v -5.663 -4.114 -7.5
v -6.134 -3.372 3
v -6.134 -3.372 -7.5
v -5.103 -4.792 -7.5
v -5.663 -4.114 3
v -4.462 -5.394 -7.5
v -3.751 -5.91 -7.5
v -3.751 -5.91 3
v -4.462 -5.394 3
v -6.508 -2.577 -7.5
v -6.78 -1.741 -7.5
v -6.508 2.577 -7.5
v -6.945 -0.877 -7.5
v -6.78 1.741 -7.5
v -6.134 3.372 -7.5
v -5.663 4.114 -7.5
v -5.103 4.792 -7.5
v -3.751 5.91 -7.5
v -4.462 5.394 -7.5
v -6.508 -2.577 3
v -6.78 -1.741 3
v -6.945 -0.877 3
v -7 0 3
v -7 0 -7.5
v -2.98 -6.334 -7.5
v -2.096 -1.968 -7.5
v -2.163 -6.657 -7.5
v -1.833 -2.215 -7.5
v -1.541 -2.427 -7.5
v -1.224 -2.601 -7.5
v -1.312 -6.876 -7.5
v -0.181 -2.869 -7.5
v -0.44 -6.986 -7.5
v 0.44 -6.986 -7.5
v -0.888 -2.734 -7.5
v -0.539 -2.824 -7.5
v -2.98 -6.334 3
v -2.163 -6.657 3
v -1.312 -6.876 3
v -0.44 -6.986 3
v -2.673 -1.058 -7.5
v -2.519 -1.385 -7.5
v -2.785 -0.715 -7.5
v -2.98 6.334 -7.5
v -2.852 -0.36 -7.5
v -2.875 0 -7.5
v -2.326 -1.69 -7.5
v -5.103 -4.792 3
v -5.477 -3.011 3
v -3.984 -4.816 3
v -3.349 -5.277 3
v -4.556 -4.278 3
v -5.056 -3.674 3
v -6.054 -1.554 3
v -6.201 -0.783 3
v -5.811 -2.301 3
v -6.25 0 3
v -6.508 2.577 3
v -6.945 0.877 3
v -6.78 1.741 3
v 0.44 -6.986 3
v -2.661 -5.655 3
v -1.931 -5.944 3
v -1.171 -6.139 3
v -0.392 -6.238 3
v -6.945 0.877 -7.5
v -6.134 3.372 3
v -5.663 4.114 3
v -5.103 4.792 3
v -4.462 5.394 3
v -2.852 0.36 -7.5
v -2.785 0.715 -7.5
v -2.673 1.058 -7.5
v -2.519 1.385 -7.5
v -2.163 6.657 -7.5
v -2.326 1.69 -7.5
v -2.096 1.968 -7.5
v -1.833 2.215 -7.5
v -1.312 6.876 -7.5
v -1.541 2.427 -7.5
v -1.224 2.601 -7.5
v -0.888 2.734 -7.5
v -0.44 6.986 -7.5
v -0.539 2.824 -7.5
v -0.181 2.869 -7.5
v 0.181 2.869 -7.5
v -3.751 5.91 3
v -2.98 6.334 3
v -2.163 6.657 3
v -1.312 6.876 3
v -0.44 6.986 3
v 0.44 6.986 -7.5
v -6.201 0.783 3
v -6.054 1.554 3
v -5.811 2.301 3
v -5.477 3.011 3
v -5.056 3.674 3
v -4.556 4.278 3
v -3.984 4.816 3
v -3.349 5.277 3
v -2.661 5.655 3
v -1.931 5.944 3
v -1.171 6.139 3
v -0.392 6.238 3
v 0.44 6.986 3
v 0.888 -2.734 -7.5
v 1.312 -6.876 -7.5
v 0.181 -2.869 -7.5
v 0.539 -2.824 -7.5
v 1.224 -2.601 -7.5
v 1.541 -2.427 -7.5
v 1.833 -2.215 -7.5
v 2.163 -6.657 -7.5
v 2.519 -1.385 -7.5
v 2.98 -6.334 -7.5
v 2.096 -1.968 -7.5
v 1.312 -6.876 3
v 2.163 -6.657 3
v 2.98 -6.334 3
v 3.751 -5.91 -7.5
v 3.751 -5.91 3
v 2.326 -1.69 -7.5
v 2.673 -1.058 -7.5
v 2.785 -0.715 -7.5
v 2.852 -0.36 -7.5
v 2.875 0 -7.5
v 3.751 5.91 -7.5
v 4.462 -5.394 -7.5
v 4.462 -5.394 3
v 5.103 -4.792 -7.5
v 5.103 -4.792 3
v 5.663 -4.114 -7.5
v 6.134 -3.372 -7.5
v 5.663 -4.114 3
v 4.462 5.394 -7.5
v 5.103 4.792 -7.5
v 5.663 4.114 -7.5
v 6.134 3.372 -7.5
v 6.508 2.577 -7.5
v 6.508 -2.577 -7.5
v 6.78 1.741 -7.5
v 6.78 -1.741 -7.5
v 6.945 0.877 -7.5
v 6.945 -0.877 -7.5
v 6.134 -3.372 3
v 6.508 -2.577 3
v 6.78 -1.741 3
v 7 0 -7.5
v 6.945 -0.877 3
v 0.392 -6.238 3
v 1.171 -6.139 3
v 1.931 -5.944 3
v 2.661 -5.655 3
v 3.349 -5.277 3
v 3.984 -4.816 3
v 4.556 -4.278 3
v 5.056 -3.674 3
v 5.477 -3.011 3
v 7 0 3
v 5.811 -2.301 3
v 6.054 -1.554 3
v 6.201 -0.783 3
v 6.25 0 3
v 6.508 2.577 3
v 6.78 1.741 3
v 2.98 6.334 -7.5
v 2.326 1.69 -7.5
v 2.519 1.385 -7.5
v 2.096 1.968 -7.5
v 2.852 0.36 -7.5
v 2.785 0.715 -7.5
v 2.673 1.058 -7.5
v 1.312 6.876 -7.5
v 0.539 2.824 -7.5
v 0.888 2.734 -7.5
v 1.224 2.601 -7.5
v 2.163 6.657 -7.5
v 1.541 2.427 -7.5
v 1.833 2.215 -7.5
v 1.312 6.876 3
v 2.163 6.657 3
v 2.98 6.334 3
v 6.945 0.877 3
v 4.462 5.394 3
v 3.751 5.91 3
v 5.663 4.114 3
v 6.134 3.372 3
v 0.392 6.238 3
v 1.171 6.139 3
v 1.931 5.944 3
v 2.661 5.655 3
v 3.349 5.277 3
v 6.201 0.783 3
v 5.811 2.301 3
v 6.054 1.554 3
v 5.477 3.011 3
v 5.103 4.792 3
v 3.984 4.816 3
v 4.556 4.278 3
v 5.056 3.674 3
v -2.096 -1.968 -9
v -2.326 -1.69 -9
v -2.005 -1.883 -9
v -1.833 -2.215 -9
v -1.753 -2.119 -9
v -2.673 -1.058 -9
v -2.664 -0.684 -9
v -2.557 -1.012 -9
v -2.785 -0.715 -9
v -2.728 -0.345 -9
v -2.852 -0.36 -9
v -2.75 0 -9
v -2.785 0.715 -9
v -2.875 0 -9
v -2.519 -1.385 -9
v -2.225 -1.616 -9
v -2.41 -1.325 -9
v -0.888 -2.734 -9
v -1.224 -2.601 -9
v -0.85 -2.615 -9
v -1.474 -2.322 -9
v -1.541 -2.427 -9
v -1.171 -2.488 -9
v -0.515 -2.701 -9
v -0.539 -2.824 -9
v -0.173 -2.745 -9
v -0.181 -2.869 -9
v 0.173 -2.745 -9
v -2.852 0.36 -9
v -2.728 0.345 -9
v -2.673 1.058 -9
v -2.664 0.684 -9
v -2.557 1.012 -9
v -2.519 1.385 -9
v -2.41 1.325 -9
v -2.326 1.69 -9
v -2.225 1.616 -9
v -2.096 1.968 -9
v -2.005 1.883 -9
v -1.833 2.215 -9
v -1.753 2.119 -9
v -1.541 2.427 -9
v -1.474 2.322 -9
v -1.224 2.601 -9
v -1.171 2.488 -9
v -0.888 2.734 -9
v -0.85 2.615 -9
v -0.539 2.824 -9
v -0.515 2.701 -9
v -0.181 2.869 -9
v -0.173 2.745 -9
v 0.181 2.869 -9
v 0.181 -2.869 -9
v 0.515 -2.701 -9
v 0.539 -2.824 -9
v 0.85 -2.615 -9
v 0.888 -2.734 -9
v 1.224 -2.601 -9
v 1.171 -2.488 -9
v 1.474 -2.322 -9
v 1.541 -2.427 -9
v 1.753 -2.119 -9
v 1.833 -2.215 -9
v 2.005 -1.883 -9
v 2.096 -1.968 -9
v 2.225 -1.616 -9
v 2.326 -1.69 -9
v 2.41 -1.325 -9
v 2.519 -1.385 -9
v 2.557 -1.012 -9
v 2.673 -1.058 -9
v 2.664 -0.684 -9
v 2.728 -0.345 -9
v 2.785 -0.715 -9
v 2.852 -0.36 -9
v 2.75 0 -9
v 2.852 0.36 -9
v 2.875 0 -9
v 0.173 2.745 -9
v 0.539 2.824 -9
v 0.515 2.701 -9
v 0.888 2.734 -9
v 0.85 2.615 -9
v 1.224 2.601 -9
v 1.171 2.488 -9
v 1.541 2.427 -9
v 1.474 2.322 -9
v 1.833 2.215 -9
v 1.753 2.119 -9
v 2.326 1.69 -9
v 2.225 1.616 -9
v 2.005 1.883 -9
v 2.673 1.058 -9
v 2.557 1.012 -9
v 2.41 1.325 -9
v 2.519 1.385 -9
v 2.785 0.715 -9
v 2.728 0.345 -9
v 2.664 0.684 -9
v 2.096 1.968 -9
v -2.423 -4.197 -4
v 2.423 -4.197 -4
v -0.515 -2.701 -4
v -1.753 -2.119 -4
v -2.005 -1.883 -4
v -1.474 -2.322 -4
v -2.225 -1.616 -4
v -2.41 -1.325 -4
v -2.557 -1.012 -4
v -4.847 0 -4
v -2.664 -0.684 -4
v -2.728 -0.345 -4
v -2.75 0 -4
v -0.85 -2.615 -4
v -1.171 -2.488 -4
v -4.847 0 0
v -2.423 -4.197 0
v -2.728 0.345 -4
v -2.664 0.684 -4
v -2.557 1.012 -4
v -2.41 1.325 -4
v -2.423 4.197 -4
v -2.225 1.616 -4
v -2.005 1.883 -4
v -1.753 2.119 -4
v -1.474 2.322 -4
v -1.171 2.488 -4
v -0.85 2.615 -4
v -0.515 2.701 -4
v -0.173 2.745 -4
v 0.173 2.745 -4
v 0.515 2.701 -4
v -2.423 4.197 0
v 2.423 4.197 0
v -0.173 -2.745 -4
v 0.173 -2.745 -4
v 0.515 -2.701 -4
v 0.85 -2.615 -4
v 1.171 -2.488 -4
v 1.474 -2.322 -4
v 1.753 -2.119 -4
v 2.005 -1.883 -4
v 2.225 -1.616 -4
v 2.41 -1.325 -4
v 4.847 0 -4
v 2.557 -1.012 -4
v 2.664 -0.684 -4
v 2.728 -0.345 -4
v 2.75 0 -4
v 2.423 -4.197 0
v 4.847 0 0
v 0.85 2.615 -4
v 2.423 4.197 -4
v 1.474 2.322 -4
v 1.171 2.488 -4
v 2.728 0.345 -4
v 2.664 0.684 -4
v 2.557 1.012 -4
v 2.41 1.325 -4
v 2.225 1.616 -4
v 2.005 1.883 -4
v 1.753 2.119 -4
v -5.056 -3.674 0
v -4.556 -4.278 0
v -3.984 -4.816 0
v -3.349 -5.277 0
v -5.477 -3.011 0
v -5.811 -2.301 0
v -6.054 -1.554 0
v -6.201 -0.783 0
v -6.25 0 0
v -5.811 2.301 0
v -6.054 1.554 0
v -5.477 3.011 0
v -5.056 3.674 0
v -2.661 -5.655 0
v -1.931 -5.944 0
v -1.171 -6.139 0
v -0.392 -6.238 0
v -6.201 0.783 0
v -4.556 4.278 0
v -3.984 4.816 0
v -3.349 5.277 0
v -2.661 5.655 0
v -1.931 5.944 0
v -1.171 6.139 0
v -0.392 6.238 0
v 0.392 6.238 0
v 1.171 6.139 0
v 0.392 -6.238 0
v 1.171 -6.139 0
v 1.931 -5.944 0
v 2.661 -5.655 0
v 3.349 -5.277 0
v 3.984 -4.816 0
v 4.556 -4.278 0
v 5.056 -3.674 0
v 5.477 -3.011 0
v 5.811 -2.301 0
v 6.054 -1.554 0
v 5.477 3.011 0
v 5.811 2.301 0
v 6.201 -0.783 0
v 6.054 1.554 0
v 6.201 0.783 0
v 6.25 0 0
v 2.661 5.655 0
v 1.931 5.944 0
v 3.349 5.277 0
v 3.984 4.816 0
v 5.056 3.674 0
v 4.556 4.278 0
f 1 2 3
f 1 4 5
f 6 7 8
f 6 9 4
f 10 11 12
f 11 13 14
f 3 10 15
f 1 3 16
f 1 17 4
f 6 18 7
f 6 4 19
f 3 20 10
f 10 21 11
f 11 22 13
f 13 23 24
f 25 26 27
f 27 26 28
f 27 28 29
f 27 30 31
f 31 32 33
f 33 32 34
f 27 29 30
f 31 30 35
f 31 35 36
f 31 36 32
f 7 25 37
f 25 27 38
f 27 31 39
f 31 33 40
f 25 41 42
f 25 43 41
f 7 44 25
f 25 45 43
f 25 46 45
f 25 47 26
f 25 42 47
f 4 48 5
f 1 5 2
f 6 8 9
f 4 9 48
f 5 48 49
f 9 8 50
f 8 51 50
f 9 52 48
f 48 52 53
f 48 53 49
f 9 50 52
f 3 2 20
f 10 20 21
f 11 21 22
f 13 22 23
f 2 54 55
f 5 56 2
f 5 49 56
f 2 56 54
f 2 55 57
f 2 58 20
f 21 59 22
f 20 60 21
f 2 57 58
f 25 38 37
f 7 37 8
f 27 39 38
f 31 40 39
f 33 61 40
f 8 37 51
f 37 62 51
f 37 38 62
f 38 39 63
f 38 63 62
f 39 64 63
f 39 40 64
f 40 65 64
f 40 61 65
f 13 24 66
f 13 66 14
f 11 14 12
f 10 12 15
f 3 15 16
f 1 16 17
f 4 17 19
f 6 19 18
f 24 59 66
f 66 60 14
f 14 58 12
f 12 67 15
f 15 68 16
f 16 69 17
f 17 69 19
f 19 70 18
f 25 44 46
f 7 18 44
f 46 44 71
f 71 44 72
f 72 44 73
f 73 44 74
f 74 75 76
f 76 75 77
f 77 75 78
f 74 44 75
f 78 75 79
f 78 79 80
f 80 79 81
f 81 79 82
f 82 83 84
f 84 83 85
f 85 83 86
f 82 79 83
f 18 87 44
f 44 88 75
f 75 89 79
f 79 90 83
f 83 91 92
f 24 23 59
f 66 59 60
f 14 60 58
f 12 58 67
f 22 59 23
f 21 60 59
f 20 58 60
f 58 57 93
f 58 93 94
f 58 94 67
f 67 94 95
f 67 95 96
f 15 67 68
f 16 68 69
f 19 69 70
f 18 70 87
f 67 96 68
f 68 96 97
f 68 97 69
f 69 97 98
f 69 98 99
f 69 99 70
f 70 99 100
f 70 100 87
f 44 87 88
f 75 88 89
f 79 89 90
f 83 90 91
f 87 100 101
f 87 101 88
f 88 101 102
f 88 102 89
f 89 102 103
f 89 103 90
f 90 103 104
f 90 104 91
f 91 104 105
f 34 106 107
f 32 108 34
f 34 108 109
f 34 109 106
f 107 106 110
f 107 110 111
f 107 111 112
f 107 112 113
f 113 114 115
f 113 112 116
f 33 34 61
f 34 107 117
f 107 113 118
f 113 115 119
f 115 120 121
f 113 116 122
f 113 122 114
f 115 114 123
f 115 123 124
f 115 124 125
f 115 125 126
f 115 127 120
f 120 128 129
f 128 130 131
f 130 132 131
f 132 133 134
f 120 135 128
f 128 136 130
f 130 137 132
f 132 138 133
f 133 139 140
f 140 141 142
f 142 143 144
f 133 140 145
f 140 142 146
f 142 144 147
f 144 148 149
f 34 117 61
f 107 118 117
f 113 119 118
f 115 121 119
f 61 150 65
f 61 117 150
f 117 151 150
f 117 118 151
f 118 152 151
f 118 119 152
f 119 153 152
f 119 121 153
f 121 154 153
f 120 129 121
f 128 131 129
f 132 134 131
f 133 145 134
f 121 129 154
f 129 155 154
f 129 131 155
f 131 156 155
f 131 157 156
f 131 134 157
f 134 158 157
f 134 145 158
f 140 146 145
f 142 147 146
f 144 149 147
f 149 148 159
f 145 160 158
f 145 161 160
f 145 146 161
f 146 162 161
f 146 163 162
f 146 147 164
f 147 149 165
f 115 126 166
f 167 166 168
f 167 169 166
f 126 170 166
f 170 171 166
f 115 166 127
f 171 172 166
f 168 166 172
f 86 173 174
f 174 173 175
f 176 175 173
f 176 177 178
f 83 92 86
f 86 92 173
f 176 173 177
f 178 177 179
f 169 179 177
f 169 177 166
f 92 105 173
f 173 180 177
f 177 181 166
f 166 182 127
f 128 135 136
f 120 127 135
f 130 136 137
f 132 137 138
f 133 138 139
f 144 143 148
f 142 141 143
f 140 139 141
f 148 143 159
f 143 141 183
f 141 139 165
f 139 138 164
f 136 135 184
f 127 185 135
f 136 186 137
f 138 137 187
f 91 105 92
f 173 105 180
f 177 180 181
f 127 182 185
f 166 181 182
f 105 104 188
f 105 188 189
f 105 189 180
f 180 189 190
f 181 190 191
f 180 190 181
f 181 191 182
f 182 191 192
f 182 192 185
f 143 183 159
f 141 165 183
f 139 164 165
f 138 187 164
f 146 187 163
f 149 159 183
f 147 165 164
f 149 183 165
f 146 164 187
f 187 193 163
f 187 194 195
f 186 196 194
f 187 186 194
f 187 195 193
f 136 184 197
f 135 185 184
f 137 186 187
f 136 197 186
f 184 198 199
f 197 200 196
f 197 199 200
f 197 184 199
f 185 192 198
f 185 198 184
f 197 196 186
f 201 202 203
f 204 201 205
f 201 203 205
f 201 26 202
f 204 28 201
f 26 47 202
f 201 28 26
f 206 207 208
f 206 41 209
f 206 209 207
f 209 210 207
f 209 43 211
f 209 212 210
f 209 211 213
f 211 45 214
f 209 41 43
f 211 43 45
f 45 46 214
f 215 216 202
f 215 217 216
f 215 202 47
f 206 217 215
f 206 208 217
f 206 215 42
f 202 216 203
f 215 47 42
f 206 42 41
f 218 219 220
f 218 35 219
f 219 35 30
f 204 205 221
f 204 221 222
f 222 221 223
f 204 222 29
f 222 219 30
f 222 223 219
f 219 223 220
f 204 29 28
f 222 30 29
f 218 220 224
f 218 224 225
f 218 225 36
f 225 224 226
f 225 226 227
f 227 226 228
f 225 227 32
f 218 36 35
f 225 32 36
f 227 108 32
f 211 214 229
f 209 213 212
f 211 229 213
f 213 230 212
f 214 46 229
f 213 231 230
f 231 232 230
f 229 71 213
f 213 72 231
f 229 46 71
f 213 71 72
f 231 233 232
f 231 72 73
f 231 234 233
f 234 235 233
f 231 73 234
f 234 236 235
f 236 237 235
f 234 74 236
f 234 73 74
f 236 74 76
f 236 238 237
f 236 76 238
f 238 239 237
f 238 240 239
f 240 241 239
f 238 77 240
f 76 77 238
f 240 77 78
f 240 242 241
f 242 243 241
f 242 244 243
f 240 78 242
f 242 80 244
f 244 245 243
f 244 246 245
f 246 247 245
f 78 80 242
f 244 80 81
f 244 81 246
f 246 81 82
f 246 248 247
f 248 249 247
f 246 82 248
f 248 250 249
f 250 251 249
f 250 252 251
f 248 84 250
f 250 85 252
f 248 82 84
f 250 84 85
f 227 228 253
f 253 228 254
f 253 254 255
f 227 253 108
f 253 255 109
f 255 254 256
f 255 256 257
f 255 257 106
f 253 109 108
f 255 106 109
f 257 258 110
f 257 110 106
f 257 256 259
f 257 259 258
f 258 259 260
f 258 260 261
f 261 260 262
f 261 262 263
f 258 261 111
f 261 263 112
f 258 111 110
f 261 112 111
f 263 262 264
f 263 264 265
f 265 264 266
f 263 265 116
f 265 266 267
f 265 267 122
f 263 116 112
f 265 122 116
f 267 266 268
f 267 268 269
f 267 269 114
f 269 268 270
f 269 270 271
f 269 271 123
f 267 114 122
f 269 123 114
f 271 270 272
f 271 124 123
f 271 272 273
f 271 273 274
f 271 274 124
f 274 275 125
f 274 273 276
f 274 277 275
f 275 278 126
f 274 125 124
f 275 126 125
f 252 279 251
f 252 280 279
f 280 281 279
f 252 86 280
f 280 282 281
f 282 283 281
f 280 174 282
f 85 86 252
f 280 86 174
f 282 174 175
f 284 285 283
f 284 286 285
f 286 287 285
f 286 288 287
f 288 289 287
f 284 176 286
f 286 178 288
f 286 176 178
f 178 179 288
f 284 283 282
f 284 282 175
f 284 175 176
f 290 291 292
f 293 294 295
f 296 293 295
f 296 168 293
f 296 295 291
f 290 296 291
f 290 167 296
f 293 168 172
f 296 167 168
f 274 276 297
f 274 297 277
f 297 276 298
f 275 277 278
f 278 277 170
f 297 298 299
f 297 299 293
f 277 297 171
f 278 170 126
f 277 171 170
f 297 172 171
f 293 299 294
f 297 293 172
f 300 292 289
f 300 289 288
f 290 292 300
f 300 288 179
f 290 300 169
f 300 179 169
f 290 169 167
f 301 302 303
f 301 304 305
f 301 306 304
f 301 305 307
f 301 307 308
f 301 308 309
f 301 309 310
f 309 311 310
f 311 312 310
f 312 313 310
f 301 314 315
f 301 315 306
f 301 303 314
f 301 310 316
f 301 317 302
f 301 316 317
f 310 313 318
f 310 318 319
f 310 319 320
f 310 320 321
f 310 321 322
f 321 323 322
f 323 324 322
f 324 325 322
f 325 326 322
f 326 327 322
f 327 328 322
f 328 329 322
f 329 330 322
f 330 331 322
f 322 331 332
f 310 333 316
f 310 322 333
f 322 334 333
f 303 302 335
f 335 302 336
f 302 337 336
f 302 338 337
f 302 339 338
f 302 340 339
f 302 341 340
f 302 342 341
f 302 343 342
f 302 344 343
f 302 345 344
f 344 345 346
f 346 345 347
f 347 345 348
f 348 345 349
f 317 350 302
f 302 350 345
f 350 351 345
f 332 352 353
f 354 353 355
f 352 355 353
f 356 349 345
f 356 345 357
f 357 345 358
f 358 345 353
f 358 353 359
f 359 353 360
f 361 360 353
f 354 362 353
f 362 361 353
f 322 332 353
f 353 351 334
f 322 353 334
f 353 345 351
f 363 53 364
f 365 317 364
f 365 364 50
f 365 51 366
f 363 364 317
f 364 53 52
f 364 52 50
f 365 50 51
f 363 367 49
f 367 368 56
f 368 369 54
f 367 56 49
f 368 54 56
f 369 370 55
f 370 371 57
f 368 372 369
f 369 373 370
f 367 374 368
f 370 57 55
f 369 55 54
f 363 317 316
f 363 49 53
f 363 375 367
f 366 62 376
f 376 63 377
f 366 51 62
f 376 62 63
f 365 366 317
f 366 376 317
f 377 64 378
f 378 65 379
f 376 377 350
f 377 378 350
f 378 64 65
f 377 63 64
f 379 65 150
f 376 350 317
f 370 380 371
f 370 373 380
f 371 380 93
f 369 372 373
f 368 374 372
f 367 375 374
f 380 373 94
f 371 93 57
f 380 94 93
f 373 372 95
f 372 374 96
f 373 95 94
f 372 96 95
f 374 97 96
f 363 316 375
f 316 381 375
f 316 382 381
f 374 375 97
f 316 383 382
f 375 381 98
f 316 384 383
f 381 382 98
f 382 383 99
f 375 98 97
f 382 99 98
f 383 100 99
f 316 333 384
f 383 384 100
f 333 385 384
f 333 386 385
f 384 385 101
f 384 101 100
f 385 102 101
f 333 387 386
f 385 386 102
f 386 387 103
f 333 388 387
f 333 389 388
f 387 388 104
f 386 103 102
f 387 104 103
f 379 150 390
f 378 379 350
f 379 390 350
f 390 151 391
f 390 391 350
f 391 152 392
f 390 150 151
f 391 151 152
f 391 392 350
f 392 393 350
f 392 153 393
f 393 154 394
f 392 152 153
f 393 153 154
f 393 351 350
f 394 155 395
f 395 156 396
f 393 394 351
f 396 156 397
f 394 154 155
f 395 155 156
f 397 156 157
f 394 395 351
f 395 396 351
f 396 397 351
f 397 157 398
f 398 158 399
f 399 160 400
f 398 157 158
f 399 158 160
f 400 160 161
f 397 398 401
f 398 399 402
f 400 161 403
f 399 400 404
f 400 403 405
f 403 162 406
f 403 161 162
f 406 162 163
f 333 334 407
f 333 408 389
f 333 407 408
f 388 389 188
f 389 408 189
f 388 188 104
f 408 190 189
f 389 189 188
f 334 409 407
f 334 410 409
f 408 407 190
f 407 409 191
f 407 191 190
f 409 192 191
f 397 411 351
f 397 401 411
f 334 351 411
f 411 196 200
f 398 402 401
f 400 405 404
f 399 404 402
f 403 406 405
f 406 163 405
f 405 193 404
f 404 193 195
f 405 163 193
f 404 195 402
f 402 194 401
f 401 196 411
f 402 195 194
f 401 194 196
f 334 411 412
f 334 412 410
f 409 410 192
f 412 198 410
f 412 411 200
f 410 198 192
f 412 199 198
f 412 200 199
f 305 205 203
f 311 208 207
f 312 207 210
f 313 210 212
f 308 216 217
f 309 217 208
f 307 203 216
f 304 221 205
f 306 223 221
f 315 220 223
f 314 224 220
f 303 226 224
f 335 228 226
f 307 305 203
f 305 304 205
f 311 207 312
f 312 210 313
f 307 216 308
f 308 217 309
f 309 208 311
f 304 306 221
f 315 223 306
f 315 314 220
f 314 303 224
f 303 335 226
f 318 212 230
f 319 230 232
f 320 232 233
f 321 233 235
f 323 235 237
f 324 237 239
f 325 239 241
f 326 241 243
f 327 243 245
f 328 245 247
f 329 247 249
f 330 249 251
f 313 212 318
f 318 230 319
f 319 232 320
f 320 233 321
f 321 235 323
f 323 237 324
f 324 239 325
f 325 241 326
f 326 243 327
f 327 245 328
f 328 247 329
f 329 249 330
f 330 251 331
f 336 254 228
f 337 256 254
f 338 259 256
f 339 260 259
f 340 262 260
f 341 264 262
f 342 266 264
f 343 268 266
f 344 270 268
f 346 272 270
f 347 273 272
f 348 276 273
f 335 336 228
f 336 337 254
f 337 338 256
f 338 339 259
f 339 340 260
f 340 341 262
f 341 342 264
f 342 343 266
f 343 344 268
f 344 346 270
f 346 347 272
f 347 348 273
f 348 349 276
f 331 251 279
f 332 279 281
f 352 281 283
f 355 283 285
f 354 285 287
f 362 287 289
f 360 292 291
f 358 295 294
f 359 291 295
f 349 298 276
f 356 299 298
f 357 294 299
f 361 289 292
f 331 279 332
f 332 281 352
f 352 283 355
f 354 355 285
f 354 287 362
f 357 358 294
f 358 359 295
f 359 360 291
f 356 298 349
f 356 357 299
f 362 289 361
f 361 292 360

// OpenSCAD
$fn = 50;


difference() {
	union() {
		translate(v = [0, 0, -7.5000000000]) {
			cylinder(h = 10.5000000000, r = 7.0000000000);
		}
		#translate(v = [0, 0, -9.0000000000]) {
			cylinder(h = 9, r = 2.8750000000);
		}
	}
	union() {
		translate(v = [0, 0, 0]) {
			rotate(a = [0, 0, 0]) {
				difference() {
					union() {
						translate(v = [0, 0, -4]) {
							linear_extrude(height = 4) {
								polygon(points = [[4.8468000000, 0.0000000000], [2.4234000000, 4.1974519271], [-2.4234000000, 4.1974519271], [-4.8468000000, 0.0000000000], [-2.4234000000, -4.1974519271], [2.4234000000, -4.1974519271]]);
							}
						}
					}
					union();
				}
			}
		}
		#cylinder(h = 3, r = 6.2500000000);
		#translate(v = [0, 0, -100.0000000000]) {
			cylinder(h = 200, r = 2.7500000000);
		}
	}
}
